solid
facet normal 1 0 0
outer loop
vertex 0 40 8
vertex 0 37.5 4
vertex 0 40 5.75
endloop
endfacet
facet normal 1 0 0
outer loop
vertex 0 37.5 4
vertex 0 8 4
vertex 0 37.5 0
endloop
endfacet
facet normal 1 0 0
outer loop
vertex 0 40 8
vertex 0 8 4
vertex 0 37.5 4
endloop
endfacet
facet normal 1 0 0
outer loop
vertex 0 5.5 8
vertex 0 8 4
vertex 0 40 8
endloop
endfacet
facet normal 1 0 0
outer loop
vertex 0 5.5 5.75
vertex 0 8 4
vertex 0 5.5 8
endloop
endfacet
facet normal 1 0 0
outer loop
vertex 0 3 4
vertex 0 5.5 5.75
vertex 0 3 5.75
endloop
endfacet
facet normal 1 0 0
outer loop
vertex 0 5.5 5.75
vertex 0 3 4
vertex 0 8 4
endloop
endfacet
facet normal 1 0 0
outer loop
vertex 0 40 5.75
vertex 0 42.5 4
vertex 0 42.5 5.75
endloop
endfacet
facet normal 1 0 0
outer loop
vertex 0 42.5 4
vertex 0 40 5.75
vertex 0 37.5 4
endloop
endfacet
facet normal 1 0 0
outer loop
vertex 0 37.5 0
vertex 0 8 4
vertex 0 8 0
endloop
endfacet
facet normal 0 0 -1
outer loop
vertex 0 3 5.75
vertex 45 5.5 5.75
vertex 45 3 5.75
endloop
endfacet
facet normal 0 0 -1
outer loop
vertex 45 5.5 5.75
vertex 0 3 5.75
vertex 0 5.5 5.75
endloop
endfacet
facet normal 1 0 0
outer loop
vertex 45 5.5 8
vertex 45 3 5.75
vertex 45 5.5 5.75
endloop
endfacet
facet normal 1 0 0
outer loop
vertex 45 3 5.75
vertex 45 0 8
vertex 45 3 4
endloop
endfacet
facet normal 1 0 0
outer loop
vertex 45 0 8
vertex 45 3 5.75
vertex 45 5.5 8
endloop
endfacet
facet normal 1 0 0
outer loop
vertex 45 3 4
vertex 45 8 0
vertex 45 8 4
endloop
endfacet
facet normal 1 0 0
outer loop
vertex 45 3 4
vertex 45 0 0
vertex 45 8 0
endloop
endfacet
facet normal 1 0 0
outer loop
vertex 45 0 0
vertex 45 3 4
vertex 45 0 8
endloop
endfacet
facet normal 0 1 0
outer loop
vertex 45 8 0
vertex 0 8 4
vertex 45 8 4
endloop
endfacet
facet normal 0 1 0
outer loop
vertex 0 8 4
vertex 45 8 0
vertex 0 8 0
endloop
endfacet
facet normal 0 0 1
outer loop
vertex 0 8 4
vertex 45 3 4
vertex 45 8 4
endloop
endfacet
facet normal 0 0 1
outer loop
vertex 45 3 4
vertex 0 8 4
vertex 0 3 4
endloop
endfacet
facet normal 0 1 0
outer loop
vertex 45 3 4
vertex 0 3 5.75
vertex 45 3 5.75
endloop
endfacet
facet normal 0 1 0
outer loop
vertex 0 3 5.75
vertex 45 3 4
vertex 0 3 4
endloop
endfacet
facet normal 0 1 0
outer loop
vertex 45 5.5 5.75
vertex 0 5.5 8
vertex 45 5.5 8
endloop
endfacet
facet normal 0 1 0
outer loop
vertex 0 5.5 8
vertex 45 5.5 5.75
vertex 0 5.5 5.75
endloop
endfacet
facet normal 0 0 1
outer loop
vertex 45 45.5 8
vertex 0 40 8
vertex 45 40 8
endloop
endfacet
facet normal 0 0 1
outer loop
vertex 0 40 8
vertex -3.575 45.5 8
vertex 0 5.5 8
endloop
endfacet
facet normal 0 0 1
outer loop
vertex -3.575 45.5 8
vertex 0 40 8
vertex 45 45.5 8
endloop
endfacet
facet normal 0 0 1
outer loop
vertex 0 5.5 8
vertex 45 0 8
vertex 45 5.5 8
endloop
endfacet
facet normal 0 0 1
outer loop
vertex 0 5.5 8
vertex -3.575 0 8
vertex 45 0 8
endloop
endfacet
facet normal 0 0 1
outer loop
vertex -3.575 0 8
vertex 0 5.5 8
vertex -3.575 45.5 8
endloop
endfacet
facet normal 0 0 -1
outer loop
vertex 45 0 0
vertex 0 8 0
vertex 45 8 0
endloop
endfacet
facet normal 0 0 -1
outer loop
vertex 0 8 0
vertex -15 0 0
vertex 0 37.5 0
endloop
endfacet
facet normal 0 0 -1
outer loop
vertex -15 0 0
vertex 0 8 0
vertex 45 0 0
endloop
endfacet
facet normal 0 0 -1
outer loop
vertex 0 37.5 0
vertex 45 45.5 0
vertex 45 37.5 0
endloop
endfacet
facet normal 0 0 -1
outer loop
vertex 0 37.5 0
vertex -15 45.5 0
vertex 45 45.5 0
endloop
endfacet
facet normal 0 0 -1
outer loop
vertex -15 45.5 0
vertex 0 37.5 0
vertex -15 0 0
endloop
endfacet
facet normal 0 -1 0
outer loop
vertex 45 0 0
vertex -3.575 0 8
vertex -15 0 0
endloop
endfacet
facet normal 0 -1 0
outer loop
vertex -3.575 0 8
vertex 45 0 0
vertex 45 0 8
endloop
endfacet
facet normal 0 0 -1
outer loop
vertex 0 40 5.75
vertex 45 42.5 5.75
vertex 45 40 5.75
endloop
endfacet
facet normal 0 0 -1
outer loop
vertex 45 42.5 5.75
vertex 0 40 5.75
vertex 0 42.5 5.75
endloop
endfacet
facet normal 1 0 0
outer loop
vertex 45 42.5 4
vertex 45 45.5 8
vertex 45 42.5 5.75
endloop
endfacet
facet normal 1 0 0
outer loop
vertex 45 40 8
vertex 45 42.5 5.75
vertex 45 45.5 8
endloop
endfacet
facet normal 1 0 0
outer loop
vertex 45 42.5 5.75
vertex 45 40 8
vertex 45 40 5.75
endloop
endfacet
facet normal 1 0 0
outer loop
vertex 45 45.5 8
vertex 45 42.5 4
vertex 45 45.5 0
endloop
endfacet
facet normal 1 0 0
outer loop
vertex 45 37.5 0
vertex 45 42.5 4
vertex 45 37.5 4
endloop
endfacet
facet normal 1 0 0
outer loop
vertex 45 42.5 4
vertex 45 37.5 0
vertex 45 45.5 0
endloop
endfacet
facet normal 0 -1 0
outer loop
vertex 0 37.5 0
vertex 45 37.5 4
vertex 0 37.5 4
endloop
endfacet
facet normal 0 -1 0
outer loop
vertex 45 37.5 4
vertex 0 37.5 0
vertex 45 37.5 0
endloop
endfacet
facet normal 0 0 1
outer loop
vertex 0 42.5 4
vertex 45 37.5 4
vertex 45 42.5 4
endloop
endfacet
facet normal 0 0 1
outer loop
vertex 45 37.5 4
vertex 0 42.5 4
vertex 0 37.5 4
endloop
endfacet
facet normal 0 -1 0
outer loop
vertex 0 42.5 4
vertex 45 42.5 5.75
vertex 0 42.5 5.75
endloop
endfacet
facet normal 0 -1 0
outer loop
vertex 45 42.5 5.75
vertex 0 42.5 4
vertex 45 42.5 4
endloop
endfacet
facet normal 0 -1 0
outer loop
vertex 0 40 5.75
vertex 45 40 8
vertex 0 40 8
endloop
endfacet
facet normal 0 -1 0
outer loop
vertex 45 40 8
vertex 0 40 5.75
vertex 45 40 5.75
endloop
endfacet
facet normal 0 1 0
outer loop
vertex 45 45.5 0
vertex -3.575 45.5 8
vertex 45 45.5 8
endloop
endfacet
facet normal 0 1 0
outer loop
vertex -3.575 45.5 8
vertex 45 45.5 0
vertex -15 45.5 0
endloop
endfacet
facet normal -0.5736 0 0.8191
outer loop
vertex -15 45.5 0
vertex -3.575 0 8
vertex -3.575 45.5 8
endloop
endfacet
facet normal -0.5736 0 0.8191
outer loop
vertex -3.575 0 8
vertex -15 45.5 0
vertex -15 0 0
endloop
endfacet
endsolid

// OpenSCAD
module rc522_channel() {
    difference() {
        cube([45,8,8]);
        translate([0,3,4]) {
            cube([45,5,1.75]); 
            translate([0,2.5,1.75]) {
                cube([45,5,2.5]); 
            }
        }
        
    }
}

module rc522_holder() {
    rc522_channel();
    translate([0,45.5,0]) {
        mirror([0,1,0]) {
            rc522_channel();
        }
    }
    translate([-15,0,0]) {
        difference() {
            cube([15,45.5,8]);
            rotate([0,-35,0]) {
                cube([15,45.5,8]);   
            }
        }
    }
}

rc522_holder();
